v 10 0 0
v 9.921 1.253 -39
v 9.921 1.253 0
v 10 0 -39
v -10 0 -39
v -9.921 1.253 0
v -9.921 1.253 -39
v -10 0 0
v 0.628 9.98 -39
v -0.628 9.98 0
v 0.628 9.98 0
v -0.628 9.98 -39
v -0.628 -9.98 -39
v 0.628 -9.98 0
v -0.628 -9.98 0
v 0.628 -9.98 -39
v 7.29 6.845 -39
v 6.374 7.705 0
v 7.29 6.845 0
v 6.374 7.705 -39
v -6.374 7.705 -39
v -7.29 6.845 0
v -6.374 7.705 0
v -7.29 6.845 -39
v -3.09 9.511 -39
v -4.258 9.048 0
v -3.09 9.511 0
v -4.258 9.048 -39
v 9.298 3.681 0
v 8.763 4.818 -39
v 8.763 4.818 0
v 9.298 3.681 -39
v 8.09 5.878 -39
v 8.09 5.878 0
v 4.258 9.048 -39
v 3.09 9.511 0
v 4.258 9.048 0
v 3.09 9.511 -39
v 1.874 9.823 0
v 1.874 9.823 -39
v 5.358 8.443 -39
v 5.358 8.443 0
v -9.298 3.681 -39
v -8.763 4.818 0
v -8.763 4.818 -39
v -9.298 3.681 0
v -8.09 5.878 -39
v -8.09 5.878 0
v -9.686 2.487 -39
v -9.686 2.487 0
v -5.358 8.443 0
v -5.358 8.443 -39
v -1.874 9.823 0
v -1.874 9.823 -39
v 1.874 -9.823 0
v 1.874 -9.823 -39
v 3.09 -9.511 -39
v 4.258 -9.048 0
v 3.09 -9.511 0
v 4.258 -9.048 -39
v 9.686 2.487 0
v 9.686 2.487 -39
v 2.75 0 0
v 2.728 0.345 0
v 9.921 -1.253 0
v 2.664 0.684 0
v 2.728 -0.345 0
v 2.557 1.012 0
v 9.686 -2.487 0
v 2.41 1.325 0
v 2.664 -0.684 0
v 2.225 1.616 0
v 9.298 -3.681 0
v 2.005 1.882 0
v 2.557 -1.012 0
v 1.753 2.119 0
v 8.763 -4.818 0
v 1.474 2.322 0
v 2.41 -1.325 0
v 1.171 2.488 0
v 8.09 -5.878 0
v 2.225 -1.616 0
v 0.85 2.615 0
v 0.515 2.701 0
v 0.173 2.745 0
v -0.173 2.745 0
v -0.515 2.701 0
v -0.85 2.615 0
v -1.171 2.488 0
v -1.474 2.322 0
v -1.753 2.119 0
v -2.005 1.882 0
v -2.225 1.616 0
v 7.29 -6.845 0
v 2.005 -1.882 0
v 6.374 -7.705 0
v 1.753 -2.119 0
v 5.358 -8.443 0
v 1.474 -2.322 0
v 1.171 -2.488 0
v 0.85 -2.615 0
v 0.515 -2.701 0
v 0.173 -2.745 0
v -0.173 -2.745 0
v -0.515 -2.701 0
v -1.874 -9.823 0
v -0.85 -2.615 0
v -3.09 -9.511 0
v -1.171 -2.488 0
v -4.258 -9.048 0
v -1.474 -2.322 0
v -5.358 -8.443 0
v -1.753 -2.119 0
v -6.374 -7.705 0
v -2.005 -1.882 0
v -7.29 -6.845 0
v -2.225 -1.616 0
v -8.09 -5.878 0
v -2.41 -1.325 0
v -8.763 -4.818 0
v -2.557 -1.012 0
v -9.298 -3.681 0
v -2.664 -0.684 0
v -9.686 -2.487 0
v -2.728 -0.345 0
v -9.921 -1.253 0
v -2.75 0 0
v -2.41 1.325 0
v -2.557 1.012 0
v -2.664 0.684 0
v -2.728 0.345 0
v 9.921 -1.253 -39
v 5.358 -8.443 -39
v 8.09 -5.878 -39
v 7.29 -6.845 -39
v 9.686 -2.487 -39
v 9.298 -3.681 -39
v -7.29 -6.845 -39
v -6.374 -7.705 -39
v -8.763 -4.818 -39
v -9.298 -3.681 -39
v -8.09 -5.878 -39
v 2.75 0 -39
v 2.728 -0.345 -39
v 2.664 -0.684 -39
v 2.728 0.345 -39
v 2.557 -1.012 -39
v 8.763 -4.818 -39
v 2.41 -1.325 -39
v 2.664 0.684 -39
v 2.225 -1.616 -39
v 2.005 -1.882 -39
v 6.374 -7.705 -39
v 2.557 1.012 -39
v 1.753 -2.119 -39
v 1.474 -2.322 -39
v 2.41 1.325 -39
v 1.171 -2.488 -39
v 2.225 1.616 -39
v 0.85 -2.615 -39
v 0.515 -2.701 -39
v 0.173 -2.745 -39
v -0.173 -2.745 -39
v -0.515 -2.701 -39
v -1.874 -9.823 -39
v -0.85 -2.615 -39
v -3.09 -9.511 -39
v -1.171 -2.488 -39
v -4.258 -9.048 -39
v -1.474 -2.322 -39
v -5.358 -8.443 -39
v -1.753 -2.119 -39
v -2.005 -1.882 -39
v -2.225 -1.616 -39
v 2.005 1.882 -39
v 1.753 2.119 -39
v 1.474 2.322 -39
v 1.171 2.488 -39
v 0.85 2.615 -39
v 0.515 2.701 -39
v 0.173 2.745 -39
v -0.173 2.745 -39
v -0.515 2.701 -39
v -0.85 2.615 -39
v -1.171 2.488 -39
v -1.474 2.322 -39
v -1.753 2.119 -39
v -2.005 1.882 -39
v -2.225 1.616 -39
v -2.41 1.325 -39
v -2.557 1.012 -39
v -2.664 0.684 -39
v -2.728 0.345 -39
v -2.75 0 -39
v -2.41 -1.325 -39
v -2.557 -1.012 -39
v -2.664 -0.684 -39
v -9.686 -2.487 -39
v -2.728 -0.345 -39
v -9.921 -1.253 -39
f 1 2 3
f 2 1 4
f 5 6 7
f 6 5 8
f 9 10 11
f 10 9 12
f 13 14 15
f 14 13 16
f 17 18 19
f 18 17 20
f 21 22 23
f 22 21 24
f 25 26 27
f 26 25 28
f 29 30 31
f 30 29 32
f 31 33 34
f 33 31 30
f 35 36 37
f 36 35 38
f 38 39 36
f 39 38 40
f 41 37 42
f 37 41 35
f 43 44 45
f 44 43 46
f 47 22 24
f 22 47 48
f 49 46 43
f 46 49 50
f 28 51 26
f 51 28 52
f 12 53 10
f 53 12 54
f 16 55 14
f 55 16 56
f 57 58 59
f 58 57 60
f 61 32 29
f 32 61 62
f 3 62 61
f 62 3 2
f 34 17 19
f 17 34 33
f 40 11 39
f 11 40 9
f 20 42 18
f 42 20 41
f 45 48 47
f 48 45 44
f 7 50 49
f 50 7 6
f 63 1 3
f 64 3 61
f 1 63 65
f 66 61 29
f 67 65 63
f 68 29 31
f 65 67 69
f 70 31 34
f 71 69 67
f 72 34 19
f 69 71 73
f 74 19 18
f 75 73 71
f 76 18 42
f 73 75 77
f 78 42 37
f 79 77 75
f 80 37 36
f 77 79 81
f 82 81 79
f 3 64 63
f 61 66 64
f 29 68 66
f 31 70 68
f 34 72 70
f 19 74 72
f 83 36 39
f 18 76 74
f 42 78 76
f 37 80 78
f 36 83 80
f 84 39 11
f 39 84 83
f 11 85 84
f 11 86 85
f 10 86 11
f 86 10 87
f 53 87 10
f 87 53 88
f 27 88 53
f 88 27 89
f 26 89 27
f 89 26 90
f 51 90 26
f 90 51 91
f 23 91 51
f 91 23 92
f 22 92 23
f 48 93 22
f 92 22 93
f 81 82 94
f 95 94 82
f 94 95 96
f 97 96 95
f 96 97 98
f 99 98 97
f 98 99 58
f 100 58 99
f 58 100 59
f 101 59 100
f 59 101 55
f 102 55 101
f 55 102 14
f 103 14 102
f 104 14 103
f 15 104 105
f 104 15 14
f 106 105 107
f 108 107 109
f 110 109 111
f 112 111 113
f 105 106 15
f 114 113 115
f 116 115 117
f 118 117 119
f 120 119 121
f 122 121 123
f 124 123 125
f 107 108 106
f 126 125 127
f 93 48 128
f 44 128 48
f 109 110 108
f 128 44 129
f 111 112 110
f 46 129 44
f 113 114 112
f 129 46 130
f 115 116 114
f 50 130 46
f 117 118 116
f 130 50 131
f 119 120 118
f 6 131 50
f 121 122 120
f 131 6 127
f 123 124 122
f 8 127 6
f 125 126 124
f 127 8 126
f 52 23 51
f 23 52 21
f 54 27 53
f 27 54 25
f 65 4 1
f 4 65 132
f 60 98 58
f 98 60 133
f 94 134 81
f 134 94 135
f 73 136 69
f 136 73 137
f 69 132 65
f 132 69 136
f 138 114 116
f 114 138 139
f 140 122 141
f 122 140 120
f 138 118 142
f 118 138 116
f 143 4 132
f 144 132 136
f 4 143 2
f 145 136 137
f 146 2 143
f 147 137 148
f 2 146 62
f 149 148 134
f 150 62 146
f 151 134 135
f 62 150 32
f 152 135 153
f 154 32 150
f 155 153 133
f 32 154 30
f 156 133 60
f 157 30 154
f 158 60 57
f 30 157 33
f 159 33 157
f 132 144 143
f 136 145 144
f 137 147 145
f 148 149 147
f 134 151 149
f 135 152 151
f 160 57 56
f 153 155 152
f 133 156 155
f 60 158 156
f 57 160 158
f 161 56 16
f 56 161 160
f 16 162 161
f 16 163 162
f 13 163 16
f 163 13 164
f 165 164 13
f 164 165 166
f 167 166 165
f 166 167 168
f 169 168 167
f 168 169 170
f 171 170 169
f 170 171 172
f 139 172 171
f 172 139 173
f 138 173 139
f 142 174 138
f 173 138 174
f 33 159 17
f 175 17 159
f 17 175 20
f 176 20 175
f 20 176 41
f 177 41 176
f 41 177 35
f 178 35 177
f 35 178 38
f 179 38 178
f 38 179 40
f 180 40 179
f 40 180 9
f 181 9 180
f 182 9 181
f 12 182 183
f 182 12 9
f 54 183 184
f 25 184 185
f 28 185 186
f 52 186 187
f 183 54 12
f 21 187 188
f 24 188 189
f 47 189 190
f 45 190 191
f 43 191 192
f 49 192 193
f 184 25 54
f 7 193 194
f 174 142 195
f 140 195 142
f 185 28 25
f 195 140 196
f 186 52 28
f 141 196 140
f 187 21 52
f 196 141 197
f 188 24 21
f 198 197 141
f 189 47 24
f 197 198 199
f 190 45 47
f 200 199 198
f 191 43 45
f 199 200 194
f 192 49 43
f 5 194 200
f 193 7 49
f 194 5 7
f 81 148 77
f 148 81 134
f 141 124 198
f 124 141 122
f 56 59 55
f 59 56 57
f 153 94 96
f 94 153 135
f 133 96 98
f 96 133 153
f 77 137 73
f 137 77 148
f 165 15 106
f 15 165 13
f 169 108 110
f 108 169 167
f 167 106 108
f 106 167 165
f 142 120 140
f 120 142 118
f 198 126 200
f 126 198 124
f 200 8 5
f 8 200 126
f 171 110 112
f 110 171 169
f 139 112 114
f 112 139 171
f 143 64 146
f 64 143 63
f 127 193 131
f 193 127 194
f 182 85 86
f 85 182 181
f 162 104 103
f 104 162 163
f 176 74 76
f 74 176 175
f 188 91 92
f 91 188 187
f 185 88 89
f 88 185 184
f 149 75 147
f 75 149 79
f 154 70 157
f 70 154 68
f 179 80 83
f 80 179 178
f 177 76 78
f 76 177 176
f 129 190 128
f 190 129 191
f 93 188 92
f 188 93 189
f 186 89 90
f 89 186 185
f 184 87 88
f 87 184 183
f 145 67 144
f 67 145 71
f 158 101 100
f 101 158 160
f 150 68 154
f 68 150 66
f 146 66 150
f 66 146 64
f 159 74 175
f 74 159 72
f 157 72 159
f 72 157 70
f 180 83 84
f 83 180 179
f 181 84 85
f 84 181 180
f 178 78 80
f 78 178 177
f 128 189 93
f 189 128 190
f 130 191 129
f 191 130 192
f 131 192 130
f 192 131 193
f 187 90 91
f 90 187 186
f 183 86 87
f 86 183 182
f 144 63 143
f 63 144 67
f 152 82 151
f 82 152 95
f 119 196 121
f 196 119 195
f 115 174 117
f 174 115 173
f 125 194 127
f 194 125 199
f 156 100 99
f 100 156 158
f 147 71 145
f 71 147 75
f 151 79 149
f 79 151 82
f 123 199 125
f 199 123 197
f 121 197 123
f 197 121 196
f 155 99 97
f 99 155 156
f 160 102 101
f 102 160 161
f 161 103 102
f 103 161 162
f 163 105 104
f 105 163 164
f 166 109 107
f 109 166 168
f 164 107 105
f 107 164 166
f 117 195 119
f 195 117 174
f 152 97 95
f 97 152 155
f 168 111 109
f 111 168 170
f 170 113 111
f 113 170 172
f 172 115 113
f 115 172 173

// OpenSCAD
$fn = 50;


difference() {
	union() {
		translate(v = [0, 0, -39.0000000000]) {
			cylinder(h = 39, r = 10.0000000000);
		}
		cylinder(h = 0, r = 16.0000000000);
	}
	union() {
		#translate(v = [0, 0, -39]) {
			cylinder(h = 39, r = 2.7500000000);
		}
	}
}
